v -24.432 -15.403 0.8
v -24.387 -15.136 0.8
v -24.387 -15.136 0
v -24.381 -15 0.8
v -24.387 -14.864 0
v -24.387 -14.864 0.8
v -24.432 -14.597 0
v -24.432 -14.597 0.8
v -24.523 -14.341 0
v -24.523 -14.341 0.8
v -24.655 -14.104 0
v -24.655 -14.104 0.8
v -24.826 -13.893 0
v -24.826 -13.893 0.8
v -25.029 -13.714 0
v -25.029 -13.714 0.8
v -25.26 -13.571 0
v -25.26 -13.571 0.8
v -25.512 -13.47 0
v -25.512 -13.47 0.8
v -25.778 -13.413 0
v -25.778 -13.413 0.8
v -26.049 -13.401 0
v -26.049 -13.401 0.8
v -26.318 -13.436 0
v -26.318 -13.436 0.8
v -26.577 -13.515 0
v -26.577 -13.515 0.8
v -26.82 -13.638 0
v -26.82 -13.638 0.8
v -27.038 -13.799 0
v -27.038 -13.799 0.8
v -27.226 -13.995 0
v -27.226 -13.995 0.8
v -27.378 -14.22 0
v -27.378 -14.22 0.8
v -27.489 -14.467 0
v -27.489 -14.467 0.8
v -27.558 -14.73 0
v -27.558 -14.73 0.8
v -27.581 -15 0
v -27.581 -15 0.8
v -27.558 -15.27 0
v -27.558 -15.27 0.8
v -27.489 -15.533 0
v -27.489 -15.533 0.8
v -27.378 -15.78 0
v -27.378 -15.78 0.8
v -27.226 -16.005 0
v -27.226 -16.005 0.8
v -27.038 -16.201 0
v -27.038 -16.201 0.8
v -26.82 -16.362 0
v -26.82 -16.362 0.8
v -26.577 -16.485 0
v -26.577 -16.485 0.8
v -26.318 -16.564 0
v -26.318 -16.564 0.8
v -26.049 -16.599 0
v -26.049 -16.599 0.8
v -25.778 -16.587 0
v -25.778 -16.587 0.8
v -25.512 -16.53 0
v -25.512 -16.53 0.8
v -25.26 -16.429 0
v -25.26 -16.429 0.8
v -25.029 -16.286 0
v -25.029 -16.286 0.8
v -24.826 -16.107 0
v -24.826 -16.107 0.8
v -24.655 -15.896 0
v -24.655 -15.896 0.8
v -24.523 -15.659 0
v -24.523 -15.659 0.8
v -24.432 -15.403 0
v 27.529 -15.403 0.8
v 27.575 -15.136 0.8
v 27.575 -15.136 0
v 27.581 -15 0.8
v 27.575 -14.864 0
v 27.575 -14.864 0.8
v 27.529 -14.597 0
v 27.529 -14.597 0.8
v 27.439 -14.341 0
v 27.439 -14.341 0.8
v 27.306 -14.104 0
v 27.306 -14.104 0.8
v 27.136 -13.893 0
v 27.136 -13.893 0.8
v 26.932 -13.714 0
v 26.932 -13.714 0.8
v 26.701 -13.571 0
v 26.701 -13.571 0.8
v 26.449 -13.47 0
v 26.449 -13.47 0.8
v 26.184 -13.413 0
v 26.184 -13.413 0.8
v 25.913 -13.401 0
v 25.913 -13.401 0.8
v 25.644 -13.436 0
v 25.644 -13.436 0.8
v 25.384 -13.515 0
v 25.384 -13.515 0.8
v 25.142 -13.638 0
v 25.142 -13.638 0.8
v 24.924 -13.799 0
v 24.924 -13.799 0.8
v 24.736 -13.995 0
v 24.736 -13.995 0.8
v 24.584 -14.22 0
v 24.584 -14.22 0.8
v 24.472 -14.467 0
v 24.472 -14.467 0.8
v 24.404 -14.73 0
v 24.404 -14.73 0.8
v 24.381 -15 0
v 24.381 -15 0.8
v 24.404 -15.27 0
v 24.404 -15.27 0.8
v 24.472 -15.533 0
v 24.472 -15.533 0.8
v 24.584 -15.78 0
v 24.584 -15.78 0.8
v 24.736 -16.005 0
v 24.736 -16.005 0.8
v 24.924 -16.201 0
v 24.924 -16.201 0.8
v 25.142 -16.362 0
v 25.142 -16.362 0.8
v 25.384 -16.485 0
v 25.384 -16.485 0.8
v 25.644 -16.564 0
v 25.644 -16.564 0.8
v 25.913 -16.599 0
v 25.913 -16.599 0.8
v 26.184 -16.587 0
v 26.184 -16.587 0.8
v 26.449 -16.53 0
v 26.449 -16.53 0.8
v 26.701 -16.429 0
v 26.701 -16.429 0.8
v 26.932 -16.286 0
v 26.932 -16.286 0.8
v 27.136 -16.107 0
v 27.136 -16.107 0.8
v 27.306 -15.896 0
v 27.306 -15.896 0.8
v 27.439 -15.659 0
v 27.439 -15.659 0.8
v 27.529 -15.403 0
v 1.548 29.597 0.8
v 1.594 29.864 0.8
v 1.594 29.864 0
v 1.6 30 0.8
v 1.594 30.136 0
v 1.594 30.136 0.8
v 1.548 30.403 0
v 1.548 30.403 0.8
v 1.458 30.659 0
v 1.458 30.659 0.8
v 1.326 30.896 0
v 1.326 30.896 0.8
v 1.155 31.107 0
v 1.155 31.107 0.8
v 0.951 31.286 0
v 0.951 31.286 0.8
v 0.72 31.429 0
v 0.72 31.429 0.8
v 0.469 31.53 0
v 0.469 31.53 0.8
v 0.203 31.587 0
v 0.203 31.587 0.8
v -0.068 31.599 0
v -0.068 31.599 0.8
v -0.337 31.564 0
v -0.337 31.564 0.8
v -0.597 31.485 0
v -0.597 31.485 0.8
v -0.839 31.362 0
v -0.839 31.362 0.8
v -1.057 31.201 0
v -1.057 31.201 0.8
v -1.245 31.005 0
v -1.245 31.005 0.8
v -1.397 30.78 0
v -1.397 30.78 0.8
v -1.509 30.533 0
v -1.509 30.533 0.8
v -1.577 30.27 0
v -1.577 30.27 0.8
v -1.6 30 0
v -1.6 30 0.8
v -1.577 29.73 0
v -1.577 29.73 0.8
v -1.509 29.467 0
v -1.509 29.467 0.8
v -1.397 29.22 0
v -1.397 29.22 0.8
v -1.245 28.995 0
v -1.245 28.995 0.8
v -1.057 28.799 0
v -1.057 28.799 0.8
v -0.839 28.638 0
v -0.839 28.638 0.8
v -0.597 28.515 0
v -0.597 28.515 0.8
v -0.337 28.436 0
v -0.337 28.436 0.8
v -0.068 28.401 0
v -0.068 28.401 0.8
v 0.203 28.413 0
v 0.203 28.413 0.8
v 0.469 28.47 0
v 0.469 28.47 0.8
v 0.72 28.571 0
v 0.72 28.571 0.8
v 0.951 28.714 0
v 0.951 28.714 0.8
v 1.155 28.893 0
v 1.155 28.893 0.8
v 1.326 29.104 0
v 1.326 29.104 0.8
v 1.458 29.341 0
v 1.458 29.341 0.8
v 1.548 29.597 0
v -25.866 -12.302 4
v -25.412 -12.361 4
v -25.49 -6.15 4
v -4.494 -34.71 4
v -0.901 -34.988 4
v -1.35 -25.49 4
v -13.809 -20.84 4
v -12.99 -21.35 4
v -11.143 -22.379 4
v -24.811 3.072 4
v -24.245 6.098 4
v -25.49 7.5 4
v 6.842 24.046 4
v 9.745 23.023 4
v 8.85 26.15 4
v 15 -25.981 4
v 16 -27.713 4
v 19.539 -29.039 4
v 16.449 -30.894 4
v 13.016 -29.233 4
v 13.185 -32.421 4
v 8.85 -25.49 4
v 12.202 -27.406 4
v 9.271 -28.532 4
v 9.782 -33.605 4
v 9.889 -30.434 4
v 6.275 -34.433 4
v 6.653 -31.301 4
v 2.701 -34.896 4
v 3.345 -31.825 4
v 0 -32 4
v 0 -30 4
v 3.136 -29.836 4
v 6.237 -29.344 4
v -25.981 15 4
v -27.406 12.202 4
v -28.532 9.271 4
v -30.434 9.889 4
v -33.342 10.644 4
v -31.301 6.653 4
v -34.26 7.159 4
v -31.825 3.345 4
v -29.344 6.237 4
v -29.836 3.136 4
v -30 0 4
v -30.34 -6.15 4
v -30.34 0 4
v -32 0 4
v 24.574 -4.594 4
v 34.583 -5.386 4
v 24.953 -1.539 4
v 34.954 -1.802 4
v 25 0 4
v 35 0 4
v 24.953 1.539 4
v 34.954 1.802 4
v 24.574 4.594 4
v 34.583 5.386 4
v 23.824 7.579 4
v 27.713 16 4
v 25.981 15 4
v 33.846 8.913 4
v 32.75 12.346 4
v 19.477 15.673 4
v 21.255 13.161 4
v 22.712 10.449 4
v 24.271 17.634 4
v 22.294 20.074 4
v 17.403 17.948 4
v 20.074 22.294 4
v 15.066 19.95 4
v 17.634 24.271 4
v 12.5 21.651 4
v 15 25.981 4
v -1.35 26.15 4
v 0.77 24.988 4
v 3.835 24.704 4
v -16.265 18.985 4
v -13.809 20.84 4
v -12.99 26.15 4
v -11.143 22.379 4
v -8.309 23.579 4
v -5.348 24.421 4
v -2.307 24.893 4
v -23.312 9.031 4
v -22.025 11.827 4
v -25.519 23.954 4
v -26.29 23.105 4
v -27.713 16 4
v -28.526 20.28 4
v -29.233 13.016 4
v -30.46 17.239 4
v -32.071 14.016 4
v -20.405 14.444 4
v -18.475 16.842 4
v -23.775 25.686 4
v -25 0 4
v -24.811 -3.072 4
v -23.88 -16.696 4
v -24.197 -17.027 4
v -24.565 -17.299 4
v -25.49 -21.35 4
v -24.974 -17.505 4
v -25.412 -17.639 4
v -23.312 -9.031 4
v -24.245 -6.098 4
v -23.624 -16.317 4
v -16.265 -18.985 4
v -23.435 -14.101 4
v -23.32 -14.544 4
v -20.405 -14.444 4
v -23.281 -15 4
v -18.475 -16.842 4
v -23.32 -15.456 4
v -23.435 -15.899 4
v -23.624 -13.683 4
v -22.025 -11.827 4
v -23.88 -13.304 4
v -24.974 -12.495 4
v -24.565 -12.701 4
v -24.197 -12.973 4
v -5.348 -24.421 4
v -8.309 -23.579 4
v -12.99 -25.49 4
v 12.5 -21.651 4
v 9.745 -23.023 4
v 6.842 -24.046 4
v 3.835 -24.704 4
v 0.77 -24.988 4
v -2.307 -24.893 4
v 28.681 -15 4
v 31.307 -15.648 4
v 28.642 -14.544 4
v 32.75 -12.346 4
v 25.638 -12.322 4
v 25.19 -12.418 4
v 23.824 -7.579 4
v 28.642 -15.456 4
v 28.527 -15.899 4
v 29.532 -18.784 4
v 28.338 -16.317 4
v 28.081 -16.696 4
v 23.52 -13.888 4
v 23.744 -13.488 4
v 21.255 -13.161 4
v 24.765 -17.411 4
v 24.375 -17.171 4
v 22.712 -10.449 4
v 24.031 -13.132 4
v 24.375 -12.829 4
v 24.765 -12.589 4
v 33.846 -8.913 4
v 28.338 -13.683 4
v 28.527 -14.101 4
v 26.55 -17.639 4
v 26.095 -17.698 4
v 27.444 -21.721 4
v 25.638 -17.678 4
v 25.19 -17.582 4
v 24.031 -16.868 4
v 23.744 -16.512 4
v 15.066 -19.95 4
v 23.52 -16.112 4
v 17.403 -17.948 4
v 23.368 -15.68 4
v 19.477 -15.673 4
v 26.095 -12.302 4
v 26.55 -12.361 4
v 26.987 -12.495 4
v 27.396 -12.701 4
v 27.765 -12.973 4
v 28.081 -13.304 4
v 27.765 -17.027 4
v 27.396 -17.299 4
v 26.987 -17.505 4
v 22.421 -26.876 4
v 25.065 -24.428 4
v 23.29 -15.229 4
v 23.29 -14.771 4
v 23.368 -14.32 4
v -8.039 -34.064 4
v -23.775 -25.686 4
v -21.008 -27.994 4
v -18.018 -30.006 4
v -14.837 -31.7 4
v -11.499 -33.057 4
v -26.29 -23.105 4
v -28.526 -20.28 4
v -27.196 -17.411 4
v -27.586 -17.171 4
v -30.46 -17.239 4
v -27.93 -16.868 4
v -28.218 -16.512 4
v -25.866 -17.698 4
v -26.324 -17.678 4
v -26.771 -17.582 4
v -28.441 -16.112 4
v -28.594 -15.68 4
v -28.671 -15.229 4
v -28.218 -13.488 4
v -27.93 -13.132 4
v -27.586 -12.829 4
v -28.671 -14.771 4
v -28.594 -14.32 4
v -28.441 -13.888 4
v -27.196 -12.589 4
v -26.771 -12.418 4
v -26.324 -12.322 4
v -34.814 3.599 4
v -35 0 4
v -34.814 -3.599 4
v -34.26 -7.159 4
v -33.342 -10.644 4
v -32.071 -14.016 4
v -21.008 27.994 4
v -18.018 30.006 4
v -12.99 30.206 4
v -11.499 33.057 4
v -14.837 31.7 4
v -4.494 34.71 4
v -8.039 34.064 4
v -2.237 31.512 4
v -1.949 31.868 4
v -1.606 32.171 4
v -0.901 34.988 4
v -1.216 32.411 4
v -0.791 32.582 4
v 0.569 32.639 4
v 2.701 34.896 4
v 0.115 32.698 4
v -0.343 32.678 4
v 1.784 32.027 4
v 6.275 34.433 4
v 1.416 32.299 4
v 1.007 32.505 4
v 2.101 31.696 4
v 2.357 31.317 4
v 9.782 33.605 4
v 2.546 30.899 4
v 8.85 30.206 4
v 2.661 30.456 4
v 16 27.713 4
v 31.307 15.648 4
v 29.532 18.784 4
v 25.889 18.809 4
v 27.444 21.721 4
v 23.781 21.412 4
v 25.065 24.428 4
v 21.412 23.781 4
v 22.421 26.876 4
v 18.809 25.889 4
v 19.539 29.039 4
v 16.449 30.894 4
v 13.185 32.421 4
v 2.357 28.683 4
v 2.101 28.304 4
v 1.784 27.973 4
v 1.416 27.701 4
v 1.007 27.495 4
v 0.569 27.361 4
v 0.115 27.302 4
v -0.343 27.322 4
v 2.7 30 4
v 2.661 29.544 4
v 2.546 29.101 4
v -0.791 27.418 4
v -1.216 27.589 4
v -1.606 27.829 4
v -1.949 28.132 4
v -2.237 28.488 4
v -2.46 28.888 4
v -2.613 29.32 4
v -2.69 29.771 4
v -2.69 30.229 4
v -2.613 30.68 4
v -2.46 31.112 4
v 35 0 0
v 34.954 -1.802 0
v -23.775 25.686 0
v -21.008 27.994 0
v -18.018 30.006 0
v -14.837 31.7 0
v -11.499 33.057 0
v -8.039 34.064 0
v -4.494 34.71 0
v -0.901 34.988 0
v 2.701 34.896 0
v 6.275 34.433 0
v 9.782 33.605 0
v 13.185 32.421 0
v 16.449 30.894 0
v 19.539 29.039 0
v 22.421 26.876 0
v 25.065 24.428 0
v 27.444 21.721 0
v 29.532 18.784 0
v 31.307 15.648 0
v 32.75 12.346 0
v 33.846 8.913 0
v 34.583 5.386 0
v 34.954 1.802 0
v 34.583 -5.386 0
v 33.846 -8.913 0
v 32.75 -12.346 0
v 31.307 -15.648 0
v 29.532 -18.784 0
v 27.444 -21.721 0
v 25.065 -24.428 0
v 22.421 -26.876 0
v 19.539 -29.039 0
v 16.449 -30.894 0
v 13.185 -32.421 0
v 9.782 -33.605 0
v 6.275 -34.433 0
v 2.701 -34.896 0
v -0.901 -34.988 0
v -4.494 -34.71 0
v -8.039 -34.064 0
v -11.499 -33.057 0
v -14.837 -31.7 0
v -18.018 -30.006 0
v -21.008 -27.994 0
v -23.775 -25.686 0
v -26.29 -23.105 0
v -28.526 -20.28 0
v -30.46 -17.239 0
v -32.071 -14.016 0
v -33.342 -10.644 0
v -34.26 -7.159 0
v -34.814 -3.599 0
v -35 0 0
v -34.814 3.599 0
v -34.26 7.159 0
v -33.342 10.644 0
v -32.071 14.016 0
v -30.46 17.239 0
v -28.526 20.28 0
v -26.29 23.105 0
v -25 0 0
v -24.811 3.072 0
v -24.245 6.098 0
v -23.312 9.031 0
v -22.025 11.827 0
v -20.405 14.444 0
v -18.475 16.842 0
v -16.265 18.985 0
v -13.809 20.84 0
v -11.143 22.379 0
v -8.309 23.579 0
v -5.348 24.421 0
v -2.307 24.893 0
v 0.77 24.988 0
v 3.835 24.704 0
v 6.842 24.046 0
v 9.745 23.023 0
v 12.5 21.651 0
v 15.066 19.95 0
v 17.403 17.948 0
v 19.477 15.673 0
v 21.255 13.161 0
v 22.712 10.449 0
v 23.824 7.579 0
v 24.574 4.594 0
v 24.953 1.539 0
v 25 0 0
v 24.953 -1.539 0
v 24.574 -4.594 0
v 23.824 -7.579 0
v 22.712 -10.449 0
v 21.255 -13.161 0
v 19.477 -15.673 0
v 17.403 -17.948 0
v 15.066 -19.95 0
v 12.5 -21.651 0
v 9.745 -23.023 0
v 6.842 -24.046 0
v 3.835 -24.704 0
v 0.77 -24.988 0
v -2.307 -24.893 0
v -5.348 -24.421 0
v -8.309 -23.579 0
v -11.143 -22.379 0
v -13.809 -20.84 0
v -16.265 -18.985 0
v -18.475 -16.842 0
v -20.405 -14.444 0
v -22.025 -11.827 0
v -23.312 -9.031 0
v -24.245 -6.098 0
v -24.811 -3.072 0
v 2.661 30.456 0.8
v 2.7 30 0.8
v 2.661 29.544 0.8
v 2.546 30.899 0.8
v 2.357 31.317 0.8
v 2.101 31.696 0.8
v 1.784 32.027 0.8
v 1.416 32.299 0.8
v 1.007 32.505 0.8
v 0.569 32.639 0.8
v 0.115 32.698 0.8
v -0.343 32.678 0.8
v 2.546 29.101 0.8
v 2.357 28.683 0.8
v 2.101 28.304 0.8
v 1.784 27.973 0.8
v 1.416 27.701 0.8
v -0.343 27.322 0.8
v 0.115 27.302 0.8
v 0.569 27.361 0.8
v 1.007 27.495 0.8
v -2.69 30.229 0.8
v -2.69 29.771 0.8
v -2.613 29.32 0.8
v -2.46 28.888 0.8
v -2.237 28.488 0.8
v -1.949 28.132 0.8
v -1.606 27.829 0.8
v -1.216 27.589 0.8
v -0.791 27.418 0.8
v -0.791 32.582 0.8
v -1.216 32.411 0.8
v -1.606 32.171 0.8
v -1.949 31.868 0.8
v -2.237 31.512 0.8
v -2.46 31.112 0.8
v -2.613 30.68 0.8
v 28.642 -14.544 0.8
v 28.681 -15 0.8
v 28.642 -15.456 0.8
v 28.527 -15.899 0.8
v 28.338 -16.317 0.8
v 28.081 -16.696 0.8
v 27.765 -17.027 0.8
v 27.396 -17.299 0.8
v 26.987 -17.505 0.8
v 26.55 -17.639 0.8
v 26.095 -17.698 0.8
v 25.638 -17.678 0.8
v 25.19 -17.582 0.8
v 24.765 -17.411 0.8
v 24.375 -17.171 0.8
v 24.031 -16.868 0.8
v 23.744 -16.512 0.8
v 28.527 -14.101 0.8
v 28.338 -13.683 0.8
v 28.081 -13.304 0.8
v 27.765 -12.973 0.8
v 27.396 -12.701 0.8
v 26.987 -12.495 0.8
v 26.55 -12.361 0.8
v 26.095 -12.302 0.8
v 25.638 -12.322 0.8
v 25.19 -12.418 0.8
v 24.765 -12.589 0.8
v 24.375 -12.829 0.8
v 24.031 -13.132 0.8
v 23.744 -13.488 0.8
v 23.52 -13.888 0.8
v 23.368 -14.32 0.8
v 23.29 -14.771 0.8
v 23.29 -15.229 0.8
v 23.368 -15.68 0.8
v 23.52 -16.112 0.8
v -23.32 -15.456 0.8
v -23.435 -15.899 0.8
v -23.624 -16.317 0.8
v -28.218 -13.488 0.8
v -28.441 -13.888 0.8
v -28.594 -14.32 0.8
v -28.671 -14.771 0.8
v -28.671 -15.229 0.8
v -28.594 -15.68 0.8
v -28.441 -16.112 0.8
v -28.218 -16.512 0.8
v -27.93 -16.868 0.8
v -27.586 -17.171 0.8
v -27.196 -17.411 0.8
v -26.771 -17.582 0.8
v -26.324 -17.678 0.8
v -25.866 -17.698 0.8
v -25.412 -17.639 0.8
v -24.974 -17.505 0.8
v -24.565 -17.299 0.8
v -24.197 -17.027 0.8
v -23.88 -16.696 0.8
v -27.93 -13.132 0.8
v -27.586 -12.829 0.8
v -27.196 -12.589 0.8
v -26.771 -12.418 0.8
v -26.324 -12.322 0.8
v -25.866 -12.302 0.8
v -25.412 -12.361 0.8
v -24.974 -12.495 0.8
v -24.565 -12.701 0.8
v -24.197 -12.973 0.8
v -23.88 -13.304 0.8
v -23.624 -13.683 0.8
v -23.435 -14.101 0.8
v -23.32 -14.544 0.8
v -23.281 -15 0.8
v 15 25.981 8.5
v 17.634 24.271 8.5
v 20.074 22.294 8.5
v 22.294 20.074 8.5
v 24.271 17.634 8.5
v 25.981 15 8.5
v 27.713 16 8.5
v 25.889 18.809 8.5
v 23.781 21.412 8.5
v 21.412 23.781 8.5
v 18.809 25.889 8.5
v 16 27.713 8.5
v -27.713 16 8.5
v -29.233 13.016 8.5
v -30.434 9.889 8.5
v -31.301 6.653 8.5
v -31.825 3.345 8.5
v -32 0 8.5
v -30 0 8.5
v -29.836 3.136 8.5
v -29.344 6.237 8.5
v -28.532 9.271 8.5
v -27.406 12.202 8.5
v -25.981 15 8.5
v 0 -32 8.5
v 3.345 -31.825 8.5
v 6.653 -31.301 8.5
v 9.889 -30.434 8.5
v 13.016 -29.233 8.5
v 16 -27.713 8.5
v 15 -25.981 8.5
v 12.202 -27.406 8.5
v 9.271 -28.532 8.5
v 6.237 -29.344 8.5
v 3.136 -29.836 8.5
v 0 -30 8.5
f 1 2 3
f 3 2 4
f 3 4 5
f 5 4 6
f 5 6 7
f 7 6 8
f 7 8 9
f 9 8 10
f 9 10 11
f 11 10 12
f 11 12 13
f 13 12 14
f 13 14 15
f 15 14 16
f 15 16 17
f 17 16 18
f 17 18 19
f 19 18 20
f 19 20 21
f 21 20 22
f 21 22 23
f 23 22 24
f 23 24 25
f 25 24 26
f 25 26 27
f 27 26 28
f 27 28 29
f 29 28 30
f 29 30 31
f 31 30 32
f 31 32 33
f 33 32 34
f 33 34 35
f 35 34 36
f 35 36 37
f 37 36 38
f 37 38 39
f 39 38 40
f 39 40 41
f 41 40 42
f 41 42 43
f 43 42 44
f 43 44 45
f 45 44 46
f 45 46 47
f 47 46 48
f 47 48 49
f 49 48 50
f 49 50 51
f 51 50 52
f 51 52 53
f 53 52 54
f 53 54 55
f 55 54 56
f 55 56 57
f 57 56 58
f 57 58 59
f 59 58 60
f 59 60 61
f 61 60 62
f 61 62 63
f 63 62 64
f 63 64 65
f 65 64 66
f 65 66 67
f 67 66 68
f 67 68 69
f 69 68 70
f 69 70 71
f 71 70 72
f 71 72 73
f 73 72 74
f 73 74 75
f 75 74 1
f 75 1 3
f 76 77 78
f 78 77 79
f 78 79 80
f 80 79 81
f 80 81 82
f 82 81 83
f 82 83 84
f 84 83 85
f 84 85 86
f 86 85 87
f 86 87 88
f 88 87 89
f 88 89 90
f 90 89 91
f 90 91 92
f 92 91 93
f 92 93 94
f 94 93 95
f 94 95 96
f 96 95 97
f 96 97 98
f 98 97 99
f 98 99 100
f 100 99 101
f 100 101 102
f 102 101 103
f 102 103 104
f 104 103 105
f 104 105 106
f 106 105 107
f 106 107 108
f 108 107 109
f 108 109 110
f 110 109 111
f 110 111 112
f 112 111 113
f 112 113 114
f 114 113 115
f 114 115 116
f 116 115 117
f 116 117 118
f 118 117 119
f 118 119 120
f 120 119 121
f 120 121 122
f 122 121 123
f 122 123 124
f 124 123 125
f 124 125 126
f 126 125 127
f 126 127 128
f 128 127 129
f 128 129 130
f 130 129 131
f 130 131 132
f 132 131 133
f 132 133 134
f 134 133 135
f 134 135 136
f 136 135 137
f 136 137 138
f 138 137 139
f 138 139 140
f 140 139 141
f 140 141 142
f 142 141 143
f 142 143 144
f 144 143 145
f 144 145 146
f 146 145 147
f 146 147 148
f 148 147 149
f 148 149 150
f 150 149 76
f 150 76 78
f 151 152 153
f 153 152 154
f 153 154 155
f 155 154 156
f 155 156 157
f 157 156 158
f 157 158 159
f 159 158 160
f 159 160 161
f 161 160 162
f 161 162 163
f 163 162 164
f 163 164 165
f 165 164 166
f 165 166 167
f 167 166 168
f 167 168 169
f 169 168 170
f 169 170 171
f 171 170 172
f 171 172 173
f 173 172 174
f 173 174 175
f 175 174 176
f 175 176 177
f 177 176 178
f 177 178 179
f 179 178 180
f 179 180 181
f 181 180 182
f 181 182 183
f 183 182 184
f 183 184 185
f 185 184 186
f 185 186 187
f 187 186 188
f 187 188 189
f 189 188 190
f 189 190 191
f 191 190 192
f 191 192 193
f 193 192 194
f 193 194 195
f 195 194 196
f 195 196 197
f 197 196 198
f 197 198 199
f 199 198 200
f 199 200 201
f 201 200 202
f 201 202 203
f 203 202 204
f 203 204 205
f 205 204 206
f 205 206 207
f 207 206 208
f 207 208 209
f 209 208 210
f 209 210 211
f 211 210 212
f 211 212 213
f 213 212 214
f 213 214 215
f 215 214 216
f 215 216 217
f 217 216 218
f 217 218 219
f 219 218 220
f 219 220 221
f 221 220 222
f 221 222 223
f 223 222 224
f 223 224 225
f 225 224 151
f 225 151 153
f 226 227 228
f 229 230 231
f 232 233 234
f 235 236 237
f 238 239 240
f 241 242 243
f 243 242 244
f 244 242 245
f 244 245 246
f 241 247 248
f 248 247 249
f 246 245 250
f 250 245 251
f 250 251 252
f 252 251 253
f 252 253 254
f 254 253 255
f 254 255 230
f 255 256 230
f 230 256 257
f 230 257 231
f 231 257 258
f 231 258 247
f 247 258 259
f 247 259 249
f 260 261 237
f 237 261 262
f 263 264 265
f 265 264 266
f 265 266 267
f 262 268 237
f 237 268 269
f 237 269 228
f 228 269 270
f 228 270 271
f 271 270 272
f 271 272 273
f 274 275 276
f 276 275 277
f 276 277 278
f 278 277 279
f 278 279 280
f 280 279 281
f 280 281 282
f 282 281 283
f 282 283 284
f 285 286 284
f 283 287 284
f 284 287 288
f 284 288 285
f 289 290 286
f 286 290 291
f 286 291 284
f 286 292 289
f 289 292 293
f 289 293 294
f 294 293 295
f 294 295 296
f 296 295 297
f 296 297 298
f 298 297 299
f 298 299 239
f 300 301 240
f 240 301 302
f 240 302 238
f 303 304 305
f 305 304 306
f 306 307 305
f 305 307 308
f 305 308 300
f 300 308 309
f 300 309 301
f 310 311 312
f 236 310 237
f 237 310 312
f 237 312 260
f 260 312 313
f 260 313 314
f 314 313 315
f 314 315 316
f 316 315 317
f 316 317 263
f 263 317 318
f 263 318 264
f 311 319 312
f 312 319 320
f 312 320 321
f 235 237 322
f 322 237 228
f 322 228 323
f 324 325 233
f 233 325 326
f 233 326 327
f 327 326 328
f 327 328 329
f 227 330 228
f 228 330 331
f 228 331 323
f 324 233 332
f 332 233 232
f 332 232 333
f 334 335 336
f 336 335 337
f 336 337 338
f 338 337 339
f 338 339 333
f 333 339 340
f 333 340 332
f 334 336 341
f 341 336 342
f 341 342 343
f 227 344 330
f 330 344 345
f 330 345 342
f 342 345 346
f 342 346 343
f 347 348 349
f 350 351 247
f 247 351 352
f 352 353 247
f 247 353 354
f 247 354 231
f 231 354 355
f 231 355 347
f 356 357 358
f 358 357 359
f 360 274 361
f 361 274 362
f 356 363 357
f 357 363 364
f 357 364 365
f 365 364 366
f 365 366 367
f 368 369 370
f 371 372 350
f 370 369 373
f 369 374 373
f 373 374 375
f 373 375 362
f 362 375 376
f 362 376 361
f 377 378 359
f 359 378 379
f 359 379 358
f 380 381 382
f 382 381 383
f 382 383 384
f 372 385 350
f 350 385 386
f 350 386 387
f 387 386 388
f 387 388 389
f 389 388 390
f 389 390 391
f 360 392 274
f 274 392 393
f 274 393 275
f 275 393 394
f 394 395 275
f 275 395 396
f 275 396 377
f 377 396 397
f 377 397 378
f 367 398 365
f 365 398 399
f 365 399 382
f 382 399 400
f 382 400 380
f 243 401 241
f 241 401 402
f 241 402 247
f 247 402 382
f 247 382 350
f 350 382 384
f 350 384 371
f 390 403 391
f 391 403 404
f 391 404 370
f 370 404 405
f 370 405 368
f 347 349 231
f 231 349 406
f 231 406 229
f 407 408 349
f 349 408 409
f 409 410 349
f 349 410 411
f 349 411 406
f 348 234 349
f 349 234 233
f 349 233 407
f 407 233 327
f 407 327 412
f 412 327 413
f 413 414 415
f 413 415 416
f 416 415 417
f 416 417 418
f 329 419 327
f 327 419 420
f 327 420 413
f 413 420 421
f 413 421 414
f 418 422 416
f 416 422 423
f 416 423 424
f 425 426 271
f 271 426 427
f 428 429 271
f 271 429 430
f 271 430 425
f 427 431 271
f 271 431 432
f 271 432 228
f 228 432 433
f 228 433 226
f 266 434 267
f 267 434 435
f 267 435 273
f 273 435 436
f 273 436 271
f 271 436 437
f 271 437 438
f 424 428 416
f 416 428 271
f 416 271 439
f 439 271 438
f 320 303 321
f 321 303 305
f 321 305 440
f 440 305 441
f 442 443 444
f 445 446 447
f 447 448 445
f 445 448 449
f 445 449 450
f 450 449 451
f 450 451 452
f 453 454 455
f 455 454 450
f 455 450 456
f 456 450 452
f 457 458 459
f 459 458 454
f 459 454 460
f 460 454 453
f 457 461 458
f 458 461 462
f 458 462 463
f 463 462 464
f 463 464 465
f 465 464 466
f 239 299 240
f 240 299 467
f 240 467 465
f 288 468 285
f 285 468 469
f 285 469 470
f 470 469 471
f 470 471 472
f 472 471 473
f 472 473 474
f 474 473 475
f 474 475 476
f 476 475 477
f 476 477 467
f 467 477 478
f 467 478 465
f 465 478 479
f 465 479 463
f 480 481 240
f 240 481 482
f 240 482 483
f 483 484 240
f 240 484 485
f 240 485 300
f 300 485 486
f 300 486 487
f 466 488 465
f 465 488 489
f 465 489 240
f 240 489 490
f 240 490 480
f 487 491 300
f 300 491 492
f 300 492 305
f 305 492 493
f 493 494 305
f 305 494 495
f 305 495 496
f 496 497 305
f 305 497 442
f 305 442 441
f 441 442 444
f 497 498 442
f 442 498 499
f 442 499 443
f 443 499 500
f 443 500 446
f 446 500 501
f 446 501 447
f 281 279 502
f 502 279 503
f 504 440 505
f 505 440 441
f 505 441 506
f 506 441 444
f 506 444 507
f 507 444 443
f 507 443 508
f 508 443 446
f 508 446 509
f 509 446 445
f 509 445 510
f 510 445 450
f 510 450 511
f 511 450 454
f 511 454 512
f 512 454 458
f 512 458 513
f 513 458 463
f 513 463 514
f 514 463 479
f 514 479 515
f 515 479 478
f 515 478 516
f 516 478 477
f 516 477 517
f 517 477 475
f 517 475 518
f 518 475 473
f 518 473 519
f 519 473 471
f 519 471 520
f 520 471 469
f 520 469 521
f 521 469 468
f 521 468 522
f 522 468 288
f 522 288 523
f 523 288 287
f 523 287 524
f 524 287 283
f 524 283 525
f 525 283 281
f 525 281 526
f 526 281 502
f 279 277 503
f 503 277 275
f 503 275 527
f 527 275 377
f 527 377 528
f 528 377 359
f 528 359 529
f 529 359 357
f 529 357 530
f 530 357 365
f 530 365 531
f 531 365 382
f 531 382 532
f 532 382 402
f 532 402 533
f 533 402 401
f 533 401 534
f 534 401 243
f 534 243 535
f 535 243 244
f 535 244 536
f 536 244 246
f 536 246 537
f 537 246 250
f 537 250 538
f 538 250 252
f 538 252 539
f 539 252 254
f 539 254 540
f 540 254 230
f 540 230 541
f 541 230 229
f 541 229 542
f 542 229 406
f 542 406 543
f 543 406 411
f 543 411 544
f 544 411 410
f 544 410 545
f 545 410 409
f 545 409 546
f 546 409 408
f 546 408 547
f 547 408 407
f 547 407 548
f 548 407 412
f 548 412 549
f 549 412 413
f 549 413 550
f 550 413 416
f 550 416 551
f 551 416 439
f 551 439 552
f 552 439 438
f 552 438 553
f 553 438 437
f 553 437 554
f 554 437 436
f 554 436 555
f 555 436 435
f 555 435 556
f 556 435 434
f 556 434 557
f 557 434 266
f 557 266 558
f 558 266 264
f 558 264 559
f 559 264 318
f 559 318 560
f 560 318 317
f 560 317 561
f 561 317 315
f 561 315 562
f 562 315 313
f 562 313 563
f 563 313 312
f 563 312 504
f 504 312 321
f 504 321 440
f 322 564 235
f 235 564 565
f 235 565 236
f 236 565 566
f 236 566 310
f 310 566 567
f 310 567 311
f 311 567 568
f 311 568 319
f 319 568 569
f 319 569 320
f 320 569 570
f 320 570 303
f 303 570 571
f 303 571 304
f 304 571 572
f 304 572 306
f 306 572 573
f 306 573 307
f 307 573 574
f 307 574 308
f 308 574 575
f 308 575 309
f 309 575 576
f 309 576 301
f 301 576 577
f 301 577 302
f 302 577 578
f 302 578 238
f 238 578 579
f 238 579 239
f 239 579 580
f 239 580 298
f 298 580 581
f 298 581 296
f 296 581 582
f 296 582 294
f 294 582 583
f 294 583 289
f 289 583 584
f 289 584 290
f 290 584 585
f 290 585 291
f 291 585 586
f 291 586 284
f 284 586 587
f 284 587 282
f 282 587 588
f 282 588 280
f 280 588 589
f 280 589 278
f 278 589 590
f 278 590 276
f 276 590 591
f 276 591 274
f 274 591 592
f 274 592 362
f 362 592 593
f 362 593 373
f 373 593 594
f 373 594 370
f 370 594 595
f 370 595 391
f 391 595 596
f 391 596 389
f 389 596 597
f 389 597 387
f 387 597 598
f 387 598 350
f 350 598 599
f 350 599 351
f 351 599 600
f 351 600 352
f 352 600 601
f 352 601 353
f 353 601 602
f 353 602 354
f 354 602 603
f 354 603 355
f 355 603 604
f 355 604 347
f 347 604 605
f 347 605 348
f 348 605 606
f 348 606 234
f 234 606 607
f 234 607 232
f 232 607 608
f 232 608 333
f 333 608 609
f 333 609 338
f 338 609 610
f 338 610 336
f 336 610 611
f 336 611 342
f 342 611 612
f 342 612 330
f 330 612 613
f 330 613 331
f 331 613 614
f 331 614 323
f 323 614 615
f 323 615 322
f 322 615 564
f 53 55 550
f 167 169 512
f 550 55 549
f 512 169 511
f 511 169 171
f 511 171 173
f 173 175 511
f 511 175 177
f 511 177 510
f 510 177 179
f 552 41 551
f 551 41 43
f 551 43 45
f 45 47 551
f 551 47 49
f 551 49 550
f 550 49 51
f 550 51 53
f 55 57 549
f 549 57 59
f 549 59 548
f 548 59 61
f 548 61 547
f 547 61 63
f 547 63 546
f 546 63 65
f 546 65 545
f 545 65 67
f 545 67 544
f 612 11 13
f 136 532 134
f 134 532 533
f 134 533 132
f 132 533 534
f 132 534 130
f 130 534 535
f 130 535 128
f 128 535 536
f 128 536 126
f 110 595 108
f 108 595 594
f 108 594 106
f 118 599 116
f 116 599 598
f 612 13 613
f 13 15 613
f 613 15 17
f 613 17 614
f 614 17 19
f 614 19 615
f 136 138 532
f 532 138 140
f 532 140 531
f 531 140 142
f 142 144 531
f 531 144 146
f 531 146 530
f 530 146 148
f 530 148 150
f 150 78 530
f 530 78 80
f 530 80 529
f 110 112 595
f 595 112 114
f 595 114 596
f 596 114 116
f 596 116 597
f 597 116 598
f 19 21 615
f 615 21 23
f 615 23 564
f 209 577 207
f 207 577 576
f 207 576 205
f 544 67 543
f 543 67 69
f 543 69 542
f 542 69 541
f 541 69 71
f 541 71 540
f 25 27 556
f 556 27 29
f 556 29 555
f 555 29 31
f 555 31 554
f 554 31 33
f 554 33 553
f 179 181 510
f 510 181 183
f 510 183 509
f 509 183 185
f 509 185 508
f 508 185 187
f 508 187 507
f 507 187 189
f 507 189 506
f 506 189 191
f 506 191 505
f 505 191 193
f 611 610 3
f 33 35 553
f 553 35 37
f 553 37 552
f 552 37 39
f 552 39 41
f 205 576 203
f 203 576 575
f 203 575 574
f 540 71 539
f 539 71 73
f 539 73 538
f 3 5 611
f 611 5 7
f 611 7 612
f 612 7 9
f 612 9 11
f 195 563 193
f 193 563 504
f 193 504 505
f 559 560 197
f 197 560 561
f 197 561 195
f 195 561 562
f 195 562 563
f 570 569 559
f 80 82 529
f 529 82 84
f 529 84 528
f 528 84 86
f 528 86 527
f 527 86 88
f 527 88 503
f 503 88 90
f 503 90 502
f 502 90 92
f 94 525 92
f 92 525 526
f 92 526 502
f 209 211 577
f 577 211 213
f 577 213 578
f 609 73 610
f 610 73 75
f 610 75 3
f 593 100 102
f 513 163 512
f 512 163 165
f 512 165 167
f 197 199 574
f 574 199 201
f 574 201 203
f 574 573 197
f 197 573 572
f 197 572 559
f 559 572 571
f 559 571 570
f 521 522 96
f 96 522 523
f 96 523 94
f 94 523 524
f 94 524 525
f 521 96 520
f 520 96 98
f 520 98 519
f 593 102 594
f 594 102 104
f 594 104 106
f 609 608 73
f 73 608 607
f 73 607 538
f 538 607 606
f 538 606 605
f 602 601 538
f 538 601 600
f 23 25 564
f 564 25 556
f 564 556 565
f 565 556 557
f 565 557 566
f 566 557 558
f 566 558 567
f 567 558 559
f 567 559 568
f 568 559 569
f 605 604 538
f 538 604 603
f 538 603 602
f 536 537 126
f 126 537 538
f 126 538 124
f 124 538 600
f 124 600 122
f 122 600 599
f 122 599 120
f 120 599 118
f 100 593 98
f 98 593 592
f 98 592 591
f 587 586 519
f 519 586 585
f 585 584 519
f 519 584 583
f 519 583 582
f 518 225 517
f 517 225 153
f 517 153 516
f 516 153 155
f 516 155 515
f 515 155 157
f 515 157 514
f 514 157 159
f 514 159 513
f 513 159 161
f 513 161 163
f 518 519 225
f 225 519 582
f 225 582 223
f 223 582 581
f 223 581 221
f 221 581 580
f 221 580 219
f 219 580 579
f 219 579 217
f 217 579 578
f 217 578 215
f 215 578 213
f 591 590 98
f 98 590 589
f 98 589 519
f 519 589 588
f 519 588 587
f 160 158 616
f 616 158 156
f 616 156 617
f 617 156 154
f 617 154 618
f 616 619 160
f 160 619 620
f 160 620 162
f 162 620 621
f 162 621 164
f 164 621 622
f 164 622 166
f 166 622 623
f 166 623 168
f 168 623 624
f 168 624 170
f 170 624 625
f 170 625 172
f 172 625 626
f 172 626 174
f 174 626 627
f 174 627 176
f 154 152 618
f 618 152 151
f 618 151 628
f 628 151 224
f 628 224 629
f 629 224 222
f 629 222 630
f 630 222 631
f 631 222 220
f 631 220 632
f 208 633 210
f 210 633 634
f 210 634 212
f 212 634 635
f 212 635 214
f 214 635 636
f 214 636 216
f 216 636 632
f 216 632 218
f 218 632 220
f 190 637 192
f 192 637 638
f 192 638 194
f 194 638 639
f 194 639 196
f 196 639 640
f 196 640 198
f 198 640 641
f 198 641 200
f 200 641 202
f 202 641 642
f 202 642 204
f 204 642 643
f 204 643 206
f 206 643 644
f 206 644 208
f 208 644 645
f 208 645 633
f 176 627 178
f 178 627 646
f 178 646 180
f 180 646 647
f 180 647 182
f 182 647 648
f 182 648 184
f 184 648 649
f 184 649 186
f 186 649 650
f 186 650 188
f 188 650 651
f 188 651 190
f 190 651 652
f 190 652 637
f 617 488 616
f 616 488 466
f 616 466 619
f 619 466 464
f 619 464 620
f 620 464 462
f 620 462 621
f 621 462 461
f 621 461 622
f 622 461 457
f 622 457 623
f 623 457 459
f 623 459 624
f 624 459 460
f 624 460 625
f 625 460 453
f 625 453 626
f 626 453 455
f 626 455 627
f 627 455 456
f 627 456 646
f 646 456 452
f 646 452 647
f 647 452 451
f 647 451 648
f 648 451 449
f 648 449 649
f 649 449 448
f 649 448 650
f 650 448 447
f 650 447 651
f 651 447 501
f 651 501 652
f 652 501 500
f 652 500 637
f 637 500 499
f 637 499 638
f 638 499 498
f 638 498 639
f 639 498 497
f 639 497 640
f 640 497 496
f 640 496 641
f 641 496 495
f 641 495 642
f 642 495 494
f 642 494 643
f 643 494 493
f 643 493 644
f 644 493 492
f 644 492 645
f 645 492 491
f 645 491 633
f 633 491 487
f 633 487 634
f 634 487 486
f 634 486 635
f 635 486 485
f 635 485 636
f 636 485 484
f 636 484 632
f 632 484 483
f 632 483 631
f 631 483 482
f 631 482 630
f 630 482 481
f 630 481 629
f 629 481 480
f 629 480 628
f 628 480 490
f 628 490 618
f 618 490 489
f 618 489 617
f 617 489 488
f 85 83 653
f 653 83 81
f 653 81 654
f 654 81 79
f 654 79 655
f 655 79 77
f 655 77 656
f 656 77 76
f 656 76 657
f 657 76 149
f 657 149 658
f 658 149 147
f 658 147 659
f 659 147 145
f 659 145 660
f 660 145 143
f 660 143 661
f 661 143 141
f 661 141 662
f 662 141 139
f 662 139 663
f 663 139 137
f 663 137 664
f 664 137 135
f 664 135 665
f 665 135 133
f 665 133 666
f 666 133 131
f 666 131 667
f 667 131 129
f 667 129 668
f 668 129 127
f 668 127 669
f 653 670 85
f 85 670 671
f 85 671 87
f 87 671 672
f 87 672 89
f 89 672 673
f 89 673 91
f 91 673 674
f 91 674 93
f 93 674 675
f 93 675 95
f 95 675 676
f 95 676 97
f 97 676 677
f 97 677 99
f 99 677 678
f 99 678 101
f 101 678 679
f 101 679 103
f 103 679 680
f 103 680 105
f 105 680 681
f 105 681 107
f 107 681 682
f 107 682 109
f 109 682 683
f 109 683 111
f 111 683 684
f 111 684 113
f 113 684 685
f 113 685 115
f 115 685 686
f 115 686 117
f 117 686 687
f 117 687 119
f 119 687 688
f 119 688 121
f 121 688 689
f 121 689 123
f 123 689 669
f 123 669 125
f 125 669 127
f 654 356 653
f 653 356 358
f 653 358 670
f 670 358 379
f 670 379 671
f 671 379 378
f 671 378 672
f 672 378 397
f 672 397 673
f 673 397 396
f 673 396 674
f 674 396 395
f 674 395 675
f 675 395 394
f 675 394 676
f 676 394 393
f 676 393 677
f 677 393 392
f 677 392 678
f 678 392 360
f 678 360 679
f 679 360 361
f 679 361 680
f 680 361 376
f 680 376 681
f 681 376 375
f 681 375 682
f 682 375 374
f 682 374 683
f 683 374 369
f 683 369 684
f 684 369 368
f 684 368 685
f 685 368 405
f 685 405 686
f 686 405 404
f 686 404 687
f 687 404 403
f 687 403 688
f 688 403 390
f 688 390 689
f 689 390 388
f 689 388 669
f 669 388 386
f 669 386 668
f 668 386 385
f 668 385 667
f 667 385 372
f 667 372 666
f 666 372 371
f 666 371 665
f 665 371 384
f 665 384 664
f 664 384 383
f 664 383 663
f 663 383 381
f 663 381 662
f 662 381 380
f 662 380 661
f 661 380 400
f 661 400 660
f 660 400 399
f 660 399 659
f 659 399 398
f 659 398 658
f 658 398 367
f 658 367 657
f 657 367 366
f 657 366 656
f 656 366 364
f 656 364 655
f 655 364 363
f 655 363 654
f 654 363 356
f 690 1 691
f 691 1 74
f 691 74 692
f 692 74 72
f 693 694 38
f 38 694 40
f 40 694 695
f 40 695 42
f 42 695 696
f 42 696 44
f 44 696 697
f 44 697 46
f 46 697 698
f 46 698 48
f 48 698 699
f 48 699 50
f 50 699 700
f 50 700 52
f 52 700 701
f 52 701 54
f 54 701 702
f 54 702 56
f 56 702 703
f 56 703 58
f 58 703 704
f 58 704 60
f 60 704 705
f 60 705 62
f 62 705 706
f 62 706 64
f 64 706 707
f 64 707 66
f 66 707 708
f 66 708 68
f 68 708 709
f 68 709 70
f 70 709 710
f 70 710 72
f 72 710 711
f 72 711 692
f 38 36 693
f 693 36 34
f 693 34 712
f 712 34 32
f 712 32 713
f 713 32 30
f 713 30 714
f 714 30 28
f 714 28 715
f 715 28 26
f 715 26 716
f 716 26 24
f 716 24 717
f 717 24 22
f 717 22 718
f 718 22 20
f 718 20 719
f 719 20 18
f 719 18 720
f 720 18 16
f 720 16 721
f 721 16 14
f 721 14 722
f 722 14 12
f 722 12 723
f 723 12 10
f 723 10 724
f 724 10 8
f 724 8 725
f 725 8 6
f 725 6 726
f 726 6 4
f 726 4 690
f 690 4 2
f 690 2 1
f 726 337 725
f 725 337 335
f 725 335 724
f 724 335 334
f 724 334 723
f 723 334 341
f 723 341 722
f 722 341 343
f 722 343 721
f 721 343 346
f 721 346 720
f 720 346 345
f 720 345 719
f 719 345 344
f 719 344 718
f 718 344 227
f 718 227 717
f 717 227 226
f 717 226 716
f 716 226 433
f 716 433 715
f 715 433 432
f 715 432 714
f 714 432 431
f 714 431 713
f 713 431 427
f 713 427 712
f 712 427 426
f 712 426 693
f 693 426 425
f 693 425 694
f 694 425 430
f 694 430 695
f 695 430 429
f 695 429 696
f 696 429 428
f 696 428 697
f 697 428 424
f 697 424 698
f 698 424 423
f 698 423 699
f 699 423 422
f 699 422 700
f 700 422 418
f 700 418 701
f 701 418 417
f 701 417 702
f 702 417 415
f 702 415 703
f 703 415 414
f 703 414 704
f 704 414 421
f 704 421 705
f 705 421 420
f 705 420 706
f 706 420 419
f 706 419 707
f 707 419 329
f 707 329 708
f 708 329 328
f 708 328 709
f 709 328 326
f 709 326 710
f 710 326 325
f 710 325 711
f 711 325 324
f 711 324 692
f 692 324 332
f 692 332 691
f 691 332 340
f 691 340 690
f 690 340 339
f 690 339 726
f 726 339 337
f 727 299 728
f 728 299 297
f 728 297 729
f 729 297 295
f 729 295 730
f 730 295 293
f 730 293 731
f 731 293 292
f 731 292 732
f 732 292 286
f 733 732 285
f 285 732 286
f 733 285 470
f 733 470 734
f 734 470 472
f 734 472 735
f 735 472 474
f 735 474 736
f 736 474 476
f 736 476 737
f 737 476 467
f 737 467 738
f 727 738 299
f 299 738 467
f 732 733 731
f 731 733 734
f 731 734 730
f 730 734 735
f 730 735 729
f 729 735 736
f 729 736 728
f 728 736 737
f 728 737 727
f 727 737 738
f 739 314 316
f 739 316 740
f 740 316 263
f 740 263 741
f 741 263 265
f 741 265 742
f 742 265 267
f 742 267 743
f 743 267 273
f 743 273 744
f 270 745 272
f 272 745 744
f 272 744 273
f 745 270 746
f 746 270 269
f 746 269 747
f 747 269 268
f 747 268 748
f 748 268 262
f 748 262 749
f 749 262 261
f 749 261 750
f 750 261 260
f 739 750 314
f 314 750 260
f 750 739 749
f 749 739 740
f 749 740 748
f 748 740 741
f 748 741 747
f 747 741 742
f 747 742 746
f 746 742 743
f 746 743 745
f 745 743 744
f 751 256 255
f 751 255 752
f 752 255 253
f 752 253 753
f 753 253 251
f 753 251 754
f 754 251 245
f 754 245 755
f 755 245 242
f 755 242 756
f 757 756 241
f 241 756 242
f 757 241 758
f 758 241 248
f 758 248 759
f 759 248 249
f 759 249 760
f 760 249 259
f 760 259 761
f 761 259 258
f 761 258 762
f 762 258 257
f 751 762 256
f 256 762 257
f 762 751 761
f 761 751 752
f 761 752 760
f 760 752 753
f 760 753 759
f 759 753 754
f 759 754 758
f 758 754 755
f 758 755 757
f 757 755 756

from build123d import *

# Parameters (mm, degrees)
SKETCH1_R           = 35
SKETCH1_R_2         = 30
SKETCH1_R_3         = 25
BOSS_EXTRUDE1_DEPTH = 4
SKETCH2_R           = 3.9
BOSS_EXTRUDE2_DEPTH = 7.1
SKETCH3_R           = 1.6
CUT_EXTRUDE1_DEPTH  = 15
SKETCH4_R           = 2.7
CUT_EXTRUDE2_DEPTH  = 3.2
BOSS_EXTRUDE3_DEPTH = 4.5
BOSS_EXTRUDE4_DEPTH = 4.5
SKETCH8_R           = 3.9
CUT_EXTRUDE3_DEPTH  = 12.5


with BuildPart() as part:
    # Sketch1 → Boss-Extrude1 (new body)
    with BuildSketch(Plane.XY):
        Circle(SKETCH1_R)
        Circle(SKETCH1_R_2, mode=Mode.SUBTRACT)
        Circle(SKETCH1_R_2)
        Circle(SKETCH1_R_3, mode=Mode.SUBTRACT)
    extrude(amount=BOSS_EXTRUDE1_DEPTH)

    # Sketch2 → Boss-Extrude2 (add)
    with BuildSketch(Plane(origin=(0, 0, 0), x_dir=(-1, 0, 0), z_dir=(0, 0, -1))):
        with Locations((0, 30)):
            Circle(SKETCH2_R)
        with Locations((25.980762114, -15)):
            Circle(SKETCH2_R)
        with Locations((-25.980762114, -15)):
            Circle(SKETCH2_R)
    extrude(amount=BOSS_EXTRUDE2_DEPTH)

    # Sketch3 → Cut-Extrude1 (cut)
    with BuildSketch(Plane(origin=(0, 0, -7.1), x_dir=(-1, 0, 0), z_dir=(0, 0, -1))):
        with Locations((0, 30)):
            Circle(SKETCH3_R)
        with Locations((25.980762114, -15)):
            Circle(SKETCH3_R)
        with Locations((-25.980762114, -15)):
            Circle(SKETCH3_R)
    extrude(amount=-CUT_EXTRUDE1_DEPTH, mode=Mode.SUBTRACT)

    # Sketch4 → Cut-Extrude2 (cut)
    with BuildSketch(Plane.XY.offset(4)):
        with Locations((0, 30)):
            Circle(SKETCH4_R)
        with Locations((25.980762114, -15)):
            Circle(SKETCH4_R)
        with Locations((-25.980762114, -15)):
            Circle(SKETCH4_R)
    extrude(amount=-CUT_EXTRUDE2_DEPTH, mode=Mode.SUBTRACT)

    # Sketch6 → Boss-Extrude3 (add)
    with BuildSketch(Plane.XY.offset(4)):
        with BuildLine():
            Line((25.980762114, 15), (27.712812921, 16))
            ThreePointArc((27.712812921, 16), (22.627416998, 22.627416998), (16, 27.712812921))
            Line((16, 27.712812921), (15, 25.980762114))
            ThreePointArc((15, 25.980762114), (21.213203436, 21.213203436), (25.980762114, 15))
        make_face()
    extrude(amount=BOSS_EXTRUDE3_DEPTH)

    # Sketch7 → Boss-Extrude4 (add)
    with BuildSketch(Plane.XY.offset(4)):
        with BuildLine():
            Line((16, -27.712812921), (15, -25.980762114))
            ThreePointArc((15, -25.980762114), (7.764571353, -28.977774789), (0, -30))
            Line((0, -30), (0, -32))
            ThreePointArc((0, -32), (8.282209443, -30.909626441), (16, -27.712812921))
        make_face()
        with BuildLine():
            Line((25.980762114, 15), (27.712812921, 16))
            ThreePointArc((27.712812921, 16), (22.627416998, 22.627416998), (16, 27.712812921))
            Line((16, 27.712812921), (15, 25.980762114))
            ThreePointArc((15, 25.980762114), (21.213203436, 21.213203436), (25.980762114, 15))
        make_face()
        with BuildLine():
            Line((-32, 0), (-30, 0))
            ThreePointArc((-30, 0), (-28.977774789, 7.764571353), (-25.980762114, 15))
            Line((-25.980762114, 15), (-27.712812921, 16))
            ThreePointArc((-27.712812921, 16), (-30.909626441, 8.282209443), (-32, 0))
        make_face()
    extrude(amount=BOSS_EXTRUDE4_DEPTH)

    # Sketch8 → Cut-Extrude3 (cut)
    with BuildSketch(Plane(origin=(0, 0, 0), x_dir=(-1, 0, 0), z_dir=(0, 0, -1))):
        with Locations((0, 30)):
            Circle(SKETCH8_R)
        with Locations((25.980762114, -15)):
            Circle(SKETCH8_R)
        with Locations((-25.980762114, -15)):
            Circle(SKETCH8_R)
    extrude(amount=CUT_EXTRUDE3_DEPTH, mode=Mode.SUBTRACT)


solid = part.part
